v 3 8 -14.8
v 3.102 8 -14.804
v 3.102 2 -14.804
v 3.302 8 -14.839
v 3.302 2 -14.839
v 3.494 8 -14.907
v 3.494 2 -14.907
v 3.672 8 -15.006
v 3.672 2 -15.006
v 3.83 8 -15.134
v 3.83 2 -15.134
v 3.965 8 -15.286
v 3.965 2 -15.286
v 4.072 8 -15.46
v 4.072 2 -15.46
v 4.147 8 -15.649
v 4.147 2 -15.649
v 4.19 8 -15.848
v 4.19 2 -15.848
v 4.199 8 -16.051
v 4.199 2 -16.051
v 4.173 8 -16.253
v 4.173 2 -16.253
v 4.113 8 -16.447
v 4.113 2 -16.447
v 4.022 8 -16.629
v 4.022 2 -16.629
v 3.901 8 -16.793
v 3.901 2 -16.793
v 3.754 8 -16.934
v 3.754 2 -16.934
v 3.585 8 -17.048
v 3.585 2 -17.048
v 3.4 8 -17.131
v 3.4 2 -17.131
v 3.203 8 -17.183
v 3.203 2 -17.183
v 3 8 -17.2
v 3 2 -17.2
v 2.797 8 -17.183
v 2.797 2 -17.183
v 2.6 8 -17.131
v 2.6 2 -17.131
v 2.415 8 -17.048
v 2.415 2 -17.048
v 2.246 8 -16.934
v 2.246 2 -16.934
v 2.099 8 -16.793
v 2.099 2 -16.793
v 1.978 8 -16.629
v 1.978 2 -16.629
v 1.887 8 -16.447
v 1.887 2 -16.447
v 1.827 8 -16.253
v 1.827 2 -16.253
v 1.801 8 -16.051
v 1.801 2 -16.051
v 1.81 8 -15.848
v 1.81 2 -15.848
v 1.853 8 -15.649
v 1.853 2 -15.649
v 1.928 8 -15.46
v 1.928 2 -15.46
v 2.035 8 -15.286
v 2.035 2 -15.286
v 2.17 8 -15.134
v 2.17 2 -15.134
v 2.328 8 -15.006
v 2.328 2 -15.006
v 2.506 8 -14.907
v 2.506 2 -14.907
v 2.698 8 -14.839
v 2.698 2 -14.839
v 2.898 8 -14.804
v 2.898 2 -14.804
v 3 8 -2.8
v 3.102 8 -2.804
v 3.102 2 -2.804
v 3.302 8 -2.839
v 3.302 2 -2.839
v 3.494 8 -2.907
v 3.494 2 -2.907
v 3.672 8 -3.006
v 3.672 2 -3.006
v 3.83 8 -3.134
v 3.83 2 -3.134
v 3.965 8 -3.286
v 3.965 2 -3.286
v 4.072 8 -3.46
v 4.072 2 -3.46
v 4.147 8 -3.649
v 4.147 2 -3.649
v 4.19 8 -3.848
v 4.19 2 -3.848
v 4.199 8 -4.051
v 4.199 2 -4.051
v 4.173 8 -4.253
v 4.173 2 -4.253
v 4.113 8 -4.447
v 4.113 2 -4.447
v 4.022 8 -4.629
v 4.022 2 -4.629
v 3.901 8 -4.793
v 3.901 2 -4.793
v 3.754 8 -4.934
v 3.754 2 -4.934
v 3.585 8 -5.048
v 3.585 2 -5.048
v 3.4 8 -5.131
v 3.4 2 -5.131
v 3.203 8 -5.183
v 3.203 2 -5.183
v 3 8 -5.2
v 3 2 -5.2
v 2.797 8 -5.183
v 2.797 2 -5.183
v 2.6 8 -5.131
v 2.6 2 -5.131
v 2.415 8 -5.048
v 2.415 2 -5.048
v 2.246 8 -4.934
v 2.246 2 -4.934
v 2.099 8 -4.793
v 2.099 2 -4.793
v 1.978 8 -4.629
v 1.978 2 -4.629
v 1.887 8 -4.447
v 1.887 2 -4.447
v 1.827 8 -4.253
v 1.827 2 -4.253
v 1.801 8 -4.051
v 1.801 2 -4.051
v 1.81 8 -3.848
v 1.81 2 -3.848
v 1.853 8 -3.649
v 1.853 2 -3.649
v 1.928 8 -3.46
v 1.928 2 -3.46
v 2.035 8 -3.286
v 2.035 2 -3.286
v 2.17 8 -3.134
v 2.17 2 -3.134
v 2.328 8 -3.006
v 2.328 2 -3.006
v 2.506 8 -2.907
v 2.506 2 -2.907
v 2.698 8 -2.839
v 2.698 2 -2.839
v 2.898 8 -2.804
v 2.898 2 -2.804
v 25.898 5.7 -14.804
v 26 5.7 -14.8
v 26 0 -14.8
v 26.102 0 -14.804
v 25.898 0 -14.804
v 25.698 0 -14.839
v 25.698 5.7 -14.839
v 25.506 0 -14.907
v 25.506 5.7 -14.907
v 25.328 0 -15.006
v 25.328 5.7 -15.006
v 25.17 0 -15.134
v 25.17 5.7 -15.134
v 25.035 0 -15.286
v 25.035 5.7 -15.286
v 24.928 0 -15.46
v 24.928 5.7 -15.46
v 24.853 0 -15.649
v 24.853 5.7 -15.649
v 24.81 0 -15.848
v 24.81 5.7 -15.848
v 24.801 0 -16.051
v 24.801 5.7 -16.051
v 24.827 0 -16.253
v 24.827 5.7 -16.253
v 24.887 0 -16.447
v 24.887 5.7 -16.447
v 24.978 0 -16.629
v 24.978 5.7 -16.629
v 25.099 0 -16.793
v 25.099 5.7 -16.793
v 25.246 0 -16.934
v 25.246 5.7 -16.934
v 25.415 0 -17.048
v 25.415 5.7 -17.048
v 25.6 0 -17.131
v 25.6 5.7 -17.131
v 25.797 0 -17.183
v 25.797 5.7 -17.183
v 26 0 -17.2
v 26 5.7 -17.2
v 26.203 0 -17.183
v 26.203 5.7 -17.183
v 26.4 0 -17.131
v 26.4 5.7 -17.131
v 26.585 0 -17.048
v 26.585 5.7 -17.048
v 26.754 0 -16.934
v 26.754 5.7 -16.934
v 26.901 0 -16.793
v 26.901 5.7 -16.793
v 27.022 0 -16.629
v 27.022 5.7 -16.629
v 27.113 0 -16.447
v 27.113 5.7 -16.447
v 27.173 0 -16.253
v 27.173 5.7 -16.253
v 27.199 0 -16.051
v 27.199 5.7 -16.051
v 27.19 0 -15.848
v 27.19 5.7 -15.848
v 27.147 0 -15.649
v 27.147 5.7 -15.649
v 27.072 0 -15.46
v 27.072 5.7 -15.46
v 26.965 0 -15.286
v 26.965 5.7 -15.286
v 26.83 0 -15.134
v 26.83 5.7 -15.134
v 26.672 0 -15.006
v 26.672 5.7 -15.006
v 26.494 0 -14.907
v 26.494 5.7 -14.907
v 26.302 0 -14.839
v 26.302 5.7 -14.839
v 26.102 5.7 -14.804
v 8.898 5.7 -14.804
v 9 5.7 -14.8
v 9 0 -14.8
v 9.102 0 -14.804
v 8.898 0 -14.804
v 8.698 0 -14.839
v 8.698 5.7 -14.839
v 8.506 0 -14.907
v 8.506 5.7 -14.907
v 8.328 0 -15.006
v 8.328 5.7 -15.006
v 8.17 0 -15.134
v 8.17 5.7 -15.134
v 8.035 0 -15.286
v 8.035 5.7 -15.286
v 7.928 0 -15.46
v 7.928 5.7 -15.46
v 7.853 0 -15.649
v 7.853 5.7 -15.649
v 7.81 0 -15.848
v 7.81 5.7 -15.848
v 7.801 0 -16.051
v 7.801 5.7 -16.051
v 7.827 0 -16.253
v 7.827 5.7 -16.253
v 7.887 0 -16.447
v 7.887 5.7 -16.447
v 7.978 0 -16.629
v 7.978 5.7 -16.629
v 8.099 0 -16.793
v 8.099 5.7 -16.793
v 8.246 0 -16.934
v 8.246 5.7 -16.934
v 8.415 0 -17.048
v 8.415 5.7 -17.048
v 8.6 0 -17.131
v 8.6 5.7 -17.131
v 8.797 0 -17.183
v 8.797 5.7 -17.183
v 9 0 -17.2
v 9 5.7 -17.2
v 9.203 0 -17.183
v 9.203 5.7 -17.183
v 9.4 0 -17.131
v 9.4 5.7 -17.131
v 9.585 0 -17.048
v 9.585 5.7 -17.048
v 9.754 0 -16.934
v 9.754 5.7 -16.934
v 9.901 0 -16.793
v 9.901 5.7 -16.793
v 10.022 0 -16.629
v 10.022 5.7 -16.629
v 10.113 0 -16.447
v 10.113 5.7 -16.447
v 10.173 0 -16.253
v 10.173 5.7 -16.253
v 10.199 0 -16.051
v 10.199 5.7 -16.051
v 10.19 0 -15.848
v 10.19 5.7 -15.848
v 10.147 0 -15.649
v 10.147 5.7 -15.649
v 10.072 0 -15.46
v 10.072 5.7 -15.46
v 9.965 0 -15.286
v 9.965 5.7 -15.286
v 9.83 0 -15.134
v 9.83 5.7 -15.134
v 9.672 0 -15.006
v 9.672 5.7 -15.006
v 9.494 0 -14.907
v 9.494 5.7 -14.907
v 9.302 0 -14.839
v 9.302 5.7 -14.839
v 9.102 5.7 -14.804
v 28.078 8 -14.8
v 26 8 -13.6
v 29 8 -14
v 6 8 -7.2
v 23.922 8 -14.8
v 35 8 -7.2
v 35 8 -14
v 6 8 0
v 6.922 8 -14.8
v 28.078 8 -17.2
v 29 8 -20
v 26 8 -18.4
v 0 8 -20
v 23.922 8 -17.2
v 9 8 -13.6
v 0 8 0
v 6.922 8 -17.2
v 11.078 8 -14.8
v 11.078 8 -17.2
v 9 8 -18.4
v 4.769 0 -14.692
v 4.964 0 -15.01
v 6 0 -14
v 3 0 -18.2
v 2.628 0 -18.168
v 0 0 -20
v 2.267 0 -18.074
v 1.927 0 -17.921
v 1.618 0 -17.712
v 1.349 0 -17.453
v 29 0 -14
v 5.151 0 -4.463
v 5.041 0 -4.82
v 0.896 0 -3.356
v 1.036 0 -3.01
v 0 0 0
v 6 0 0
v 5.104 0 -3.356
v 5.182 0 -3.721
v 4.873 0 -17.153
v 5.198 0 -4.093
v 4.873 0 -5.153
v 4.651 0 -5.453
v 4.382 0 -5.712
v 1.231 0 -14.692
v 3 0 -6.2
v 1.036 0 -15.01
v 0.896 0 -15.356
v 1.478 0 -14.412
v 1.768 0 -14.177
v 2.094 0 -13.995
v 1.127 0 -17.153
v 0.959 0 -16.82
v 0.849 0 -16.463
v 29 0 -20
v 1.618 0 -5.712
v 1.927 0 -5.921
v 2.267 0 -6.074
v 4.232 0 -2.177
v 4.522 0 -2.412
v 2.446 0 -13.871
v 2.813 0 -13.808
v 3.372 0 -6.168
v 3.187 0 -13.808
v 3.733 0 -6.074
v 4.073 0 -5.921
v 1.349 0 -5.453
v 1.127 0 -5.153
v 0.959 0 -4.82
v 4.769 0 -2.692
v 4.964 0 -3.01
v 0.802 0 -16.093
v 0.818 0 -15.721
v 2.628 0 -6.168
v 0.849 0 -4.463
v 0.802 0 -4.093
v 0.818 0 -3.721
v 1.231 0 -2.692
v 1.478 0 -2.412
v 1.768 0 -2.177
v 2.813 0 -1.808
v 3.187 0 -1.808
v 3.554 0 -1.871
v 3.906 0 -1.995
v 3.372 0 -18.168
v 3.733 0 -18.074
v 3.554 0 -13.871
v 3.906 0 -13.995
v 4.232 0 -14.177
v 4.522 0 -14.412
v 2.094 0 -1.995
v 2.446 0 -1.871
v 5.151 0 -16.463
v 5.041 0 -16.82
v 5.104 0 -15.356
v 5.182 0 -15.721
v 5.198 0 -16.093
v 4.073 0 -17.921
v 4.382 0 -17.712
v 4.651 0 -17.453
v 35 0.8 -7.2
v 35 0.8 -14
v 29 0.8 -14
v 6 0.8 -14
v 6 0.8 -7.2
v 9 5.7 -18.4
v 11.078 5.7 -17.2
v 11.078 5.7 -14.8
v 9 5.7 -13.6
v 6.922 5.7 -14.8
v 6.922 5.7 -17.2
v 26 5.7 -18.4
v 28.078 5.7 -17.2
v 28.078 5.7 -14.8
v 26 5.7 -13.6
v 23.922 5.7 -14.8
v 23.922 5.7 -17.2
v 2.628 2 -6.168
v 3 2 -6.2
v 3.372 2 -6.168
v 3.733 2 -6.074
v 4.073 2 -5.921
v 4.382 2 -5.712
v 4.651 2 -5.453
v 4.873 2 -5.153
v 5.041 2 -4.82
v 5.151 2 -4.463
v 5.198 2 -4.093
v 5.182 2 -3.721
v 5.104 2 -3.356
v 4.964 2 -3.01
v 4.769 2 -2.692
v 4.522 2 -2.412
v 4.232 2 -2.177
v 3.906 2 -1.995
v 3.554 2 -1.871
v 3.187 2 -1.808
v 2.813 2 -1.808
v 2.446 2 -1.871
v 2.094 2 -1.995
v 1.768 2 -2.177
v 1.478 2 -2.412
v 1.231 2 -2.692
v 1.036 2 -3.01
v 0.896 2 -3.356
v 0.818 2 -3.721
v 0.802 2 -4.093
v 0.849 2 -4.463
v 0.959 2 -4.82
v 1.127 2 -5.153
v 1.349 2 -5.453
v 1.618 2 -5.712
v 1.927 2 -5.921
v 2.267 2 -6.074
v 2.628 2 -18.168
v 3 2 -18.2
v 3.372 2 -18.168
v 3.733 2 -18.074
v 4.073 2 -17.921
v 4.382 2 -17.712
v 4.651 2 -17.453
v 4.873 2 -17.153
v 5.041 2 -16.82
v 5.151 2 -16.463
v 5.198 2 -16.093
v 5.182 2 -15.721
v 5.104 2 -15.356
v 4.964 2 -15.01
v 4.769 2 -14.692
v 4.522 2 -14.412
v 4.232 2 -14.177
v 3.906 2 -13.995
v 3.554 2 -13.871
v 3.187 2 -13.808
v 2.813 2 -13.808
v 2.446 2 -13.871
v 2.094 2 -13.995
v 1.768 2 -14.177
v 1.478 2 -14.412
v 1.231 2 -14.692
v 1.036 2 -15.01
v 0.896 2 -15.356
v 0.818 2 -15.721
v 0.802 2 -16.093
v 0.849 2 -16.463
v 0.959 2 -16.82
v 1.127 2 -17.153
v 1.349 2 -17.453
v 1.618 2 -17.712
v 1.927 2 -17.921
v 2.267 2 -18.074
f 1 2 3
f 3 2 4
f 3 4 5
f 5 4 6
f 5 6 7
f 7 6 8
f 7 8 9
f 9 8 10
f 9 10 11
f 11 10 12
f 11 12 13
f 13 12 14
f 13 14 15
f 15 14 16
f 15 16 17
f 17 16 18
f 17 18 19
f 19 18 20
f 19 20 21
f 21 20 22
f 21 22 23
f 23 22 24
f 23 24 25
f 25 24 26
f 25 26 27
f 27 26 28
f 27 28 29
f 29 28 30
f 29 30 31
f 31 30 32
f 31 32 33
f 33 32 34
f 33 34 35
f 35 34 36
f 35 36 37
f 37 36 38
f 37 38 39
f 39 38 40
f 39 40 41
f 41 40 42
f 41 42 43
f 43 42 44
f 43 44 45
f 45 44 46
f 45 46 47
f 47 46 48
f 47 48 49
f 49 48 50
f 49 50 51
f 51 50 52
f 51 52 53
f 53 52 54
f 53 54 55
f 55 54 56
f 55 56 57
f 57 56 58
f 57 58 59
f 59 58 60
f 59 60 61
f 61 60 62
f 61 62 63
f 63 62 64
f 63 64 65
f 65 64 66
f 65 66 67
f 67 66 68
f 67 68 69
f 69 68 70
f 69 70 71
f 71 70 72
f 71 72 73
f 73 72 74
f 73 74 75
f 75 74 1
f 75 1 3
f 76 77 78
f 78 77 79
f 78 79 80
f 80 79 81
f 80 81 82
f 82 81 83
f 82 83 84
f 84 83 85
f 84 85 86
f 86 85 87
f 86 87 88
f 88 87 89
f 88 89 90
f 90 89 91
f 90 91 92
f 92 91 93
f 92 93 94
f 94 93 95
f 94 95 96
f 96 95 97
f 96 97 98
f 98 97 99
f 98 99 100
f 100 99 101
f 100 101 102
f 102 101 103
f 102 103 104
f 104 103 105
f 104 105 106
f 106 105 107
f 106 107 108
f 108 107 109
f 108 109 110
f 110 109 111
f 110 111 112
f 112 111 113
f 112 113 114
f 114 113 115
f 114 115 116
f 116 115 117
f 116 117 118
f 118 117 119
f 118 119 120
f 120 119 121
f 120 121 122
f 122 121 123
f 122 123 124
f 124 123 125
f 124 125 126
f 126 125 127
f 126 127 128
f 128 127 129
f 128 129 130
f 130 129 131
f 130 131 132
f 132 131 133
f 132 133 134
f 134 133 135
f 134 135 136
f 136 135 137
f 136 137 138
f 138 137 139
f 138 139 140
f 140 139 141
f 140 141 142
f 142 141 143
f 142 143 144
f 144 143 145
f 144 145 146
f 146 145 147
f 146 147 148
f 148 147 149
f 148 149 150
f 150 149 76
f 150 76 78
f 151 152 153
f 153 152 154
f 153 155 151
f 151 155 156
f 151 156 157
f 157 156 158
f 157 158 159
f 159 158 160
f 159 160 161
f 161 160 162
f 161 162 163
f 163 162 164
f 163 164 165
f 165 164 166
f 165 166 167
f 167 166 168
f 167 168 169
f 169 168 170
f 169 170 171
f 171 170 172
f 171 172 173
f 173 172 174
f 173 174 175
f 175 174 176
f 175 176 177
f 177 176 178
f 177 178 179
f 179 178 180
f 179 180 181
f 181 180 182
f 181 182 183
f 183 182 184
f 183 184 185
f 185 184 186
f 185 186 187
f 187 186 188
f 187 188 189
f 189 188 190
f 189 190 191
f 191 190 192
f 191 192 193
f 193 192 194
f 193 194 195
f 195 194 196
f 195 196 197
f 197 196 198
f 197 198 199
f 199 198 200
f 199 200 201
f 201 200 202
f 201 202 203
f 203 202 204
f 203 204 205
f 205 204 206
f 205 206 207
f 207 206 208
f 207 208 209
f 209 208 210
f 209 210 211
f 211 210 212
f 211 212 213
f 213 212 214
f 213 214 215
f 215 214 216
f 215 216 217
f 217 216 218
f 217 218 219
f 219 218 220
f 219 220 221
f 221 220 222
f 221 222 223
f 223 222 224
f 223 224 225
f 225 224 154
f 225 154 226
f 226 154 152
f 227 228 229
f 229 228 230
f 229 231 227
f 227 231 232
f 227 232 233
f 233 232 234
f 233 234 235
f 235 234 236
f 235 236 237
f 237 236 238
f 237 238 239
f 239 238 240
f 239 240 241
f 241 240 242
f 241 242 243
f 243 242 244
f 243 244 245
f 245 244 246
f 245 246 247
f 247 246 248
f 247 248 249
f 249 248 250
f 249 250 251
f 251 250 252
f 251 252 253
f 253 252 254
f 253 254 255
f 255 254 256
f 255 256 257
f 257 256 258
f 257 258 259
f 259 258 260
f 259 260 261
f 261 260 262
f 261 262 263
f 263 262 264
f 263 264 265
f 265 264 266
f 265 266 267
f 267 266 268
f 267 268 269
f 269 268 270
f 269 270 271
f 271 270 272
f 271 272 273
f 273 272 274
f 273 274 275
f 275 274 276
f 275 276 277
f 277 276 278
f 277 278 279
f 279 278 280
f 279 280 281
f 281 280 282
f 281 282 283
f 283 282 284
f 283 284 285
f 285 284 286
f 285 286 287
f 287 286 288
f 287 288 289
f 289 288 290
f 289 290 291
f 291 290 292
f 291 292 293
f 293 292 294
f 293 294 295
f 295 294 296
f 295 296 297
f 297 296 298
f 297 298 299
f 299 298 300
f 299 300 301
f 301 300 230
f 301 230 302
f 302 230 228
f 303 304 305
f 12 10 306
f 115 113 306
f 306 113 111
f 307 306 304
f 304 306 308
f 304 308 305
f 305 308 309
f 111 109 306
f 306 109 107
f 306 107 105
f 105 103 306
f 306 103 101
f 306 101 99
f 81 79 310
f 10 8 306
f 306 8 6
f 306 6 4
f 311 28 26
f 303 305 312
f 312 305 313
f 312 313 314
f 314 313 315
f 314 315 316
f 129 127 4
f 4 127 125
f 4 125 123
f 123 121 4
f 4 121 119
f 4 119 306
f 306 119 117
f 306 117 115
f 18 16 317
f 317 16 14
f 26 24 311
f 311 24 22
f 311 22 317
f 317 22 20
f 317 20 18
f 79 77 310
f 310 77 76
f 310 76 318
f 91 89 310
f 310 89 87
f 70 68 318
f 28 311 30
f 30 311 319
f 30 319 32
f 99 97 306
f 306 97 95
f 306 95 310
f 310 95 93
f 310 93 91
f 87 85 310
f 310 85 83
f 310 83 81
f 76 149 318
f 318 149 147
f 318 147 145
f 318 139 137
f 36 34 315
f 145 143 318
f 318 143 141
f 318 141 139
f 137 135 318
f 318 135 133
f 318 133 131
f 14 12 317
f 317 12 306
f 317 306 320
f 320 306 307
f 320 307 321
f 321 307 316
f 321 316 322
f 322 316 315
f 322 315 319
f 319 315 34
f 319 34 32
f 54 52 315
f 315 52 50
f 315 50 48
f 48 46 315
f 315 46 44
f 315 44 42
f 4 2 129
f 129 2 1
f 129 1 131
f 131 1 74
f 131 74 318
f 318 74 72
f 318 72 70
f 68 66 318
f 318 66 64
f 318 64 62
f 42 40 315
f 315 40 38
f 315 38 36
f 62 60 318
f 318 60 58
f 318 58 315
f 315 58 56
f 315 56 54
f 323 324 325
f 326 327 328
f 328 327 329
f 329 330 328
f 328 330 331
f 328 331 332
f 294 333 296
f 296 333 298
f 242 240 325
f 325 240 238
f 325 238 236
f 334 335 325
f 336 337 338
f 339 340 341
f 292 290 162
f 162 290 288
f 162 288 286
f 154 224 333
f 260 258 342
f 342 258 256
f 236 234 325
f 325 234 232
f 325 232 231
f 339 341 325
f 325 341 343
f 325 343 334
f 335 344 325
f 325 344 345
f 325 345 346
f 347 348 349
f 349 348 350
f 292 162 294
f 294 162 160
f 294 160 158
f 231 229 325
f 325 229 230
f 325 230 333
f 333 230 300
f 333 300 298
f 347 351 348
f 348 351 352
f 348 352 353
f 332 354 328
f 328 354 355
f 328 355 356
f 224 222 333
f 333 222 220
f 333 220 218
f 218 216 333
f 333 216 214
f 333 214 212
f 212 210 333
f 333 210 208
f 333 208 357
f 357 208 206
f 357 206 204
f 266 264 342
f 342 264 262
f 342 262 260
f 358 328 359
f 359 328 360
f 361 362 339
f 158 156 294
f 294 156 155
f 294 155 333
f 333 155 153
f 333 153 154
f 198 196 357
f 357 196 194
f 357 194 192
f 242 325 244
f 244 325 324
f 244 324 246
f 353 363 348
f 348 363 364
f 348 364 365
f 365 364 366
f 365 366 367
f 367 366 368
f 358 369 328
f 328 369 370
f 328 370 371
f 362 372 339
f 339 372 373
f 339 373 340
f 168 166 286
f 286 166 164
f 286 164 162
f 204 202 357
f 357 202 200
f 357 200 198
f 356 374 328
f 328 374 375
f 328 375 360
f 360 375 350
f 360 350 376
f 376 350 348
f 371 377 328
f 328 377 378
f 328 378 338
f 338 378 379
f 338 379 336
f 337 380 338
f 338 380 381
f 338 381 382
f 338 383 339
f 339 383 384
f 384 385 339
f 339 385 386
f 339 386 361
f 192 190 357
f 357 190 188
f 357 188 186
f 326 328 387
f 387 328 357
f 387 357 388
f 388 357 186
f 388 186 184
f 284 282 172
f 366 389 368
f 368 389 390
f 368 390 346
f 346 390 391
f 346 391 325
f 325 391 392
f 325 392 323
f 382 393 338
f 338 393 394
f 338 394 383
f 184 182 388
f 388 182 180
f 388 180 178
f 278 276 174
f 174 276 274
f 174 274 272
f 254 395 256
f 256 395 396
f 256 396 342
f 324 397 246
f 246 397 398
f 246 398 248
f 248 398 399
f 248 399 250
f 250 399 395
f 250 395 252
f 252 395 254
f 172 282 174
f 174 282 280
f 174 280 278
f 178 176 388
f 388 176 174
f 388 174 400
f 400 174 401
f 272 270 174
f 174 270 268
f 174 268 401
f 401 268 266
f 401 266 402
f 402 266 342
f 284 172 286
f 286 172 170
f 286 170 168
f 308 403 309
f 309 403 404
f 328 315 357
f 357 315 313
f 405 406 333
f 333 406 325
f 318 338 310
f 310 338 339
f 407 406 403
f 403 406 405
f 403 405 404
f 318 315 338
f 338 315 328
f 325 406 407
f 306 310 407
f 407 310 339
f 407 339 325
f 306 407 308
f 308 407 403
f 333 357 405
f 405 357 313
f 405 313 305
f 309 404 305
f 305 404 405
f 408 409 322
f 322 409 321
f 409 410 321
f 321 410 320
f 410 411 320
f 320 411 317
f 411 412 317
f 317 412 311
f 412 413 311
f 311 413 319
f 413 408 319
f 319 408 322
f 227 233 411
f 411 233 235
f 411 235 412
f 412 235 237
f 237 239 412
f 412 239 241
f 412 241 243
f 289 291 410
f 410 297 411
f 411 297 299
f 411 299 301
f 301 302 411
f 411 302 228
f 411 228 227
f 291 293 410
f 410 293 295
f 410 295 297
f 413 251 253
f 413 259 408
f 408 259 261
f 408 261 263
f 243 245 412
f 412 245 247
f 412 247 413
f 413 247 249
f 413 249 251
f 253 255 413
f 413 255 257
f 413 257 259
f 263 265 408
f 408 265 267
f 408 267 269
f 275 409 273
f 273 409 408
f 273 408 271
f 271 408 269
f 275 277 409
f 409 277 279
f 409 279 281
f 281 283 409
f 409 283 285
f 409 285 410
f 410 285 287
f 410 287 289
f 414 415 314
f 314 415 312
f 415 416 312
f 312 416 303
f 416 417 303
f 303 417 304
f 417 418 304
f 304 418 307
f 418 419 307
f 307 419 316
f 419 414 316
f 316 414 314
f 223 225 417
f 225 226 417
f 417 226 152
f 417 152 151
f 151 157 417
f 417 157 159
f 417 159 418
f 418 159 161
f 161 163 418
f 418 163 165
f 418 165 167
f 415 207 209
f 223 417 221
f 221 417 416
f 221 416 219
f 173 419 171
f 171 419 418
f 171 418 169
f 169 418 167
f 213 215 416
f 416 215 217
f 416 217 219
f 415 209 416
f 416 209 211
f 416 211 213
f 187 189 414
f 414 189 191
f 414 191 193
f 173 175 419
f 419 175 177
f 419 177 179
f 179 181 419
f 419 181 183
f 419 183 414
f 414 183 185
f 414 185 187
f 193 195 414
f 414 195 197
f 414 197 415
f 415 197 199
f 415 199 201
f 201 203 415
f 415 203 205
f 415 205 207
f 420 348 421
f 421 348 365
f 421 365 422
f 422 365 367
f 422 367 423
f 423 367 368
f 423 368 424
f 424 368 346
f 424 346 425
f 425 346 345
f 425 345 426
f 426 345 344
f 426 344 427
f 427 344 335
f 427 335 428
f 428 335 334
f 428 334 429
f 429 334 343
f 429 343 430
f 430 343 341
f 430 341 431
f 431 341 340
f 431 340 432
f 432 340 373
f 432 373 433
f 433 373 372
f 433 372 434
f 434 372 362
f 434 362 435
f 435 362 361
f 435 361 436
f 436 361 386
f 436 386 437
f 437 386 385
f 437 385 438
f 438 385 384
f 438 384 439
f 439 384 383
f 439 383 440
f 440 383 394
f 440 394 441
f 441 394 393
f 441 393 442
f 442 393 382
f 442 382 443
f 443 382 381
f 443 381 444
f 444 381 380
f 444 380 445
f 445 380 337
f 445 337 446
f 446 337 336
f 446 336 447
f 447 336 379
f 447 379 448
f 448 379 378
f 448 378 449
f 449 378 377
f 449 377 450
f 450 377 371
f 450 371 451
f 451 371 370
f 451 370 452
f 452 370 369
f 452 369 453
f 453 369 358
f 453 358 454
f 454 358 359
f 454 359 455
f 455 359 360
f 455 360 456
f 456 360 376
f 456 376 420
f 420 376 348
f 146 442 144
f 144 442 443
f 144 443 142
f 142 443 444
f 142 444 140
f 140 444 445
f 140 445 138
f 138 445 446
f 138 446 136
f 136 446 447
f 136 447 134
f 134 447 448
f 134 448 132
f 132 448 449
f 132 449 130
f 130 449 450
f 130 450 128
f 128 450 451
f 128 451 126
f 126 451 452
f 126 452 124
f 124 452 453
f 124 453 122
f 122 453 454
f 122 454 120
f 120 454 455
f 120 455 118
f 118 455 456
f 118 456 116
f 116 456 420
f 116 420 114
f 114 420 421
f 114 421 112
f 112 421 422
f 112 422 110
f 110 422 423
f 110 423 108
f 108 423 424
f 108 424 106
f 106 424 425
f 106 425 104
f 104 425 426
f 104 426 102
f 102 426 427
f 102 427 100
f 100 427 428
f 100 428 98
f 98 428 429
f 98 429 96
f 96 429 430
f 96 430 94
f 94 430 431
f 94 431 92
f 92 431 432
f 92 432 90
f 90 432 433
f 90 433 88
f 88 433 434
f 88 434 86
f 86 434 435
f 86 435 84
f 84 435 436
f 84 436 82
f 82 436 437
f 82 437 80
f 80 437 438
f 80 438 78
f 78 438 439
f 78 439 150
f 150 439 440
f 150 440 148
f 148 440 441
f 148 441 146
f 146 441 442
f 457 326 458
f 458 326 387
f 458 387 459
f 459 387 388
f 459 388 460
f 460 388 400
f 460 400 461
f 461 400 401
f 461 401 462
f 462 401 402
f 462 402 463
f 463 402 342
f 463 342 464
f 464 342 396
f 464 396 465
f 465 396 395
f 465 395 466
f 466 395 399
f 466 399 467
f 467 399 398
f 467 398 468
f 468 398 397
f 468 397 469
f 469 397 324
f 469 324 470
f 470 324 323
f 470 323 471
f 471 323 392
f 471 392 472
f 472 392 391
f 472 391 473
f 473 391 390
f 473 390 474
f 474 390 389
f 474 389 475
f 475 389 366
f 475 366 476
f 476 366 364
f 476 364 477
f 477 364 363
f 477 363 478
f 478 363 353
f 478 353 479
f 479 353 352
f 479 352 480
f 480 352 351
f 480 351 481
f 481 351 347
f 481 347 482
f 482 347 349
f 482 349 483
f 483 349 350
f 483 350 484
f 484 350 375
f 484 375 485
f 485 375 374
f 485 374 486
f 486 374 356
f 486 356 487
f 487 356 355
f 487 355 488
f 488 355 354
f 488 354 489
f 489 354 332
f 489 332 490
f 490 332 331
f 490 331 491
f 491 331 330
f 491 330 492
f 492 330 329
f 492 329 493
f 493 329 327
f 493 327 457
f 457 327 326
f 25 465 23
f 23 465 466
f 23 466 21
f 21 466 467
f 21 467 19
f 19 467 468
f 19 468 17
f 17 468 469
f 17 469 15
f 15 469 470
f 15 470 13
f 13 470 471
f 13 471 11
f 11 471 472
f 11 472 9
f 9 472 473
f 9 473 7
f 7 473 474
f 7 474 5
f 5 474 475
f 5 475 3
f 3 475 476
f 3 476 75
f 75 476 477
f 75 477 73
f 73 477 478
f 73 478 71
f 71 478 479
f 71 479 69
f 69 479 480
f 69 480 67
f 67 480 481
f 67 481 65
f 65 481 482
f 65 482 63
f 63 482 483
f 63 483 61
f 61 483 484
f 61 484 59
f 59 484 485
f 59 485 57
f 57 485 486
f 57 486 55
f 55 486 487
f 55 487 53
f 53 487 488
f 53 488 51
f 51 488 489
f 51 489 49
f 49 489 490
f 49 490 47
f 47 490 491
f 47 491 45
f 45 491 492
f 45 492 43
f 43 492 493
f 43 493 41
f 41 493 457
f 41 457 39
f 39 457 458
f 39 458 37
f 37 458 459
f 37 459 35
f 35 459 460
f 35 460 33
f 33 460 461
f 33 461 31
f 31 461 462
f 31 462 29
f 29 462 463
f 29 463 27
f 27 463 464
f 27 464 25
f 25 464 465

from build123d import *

# Parameters (mm, degrees)
SKETCH_1_W           = 35
SKETCH_1_H           = 20
EXTRUDE_1_DEPTH      = 8
SKETCH_2_W           = 29
SKETCH_2_H           = 14
CUT_EXTRUDE_2_DEPTH  = 0.8
SKETCH_3_W           = 29
SKETCH_3_H           = 7.2
CUT_EXTRUDE_4_DEPTH  = 42.097445176
SKETCH_4_W           = 6
SKETCH_4_H           = 6
CUT_EXTRUDE_5_DEPTH  = 42.097445176
SKETCH_5_R           = 1.2
CUT_EXTRUDE_6_DEPTH  = 42.097445176
CUT_EXTRUDE_START    = 8
CUT_EXTRUDE_8_DEPTH  = 2.3
SKETCH_6_R           = 2.2
CUT_EXTRUDE_10_DEPTH = 2


with BuildPart() as part:
    # 草圖1 → 填料-伸長1 (new body)
    with BuildSketch(Plane(origin=(0, 0, 0), x_dir=(1, 0, 0), z_dir=(0, 1, 0))):
        with Locations((17.5, 10)):
            Rectangle(SKETCH_1_W, SKETCH_1_H)
    extrude(amount=EXTRUDE_1_DEPTH)

    # 草圖2 → 除料-伸長2 (cut)
    with BuildSketch(Plane(origin=(0, 0, 0), x_dir=(1, 0, 0), z_dir=(0, 1, 0))):
        with Locations((20.5, 7)):
            Rectangle(SKETCH_2_W, SKETCH_2_H)
    extrude(amount=CUT_EXTRUDE_2_DEPTH, mode=Mode.SUBTRACT)

    # 草圖3 → 除料-伸長4 (cut, through all)
    with BuildSketch(Plane(origin=(0, 0, 0), x_dir=(1, 0, 0), z_dir=(0, 1, 0))):
        with Locations((20.5, 3.6)):
            Rectangle(SKETCH_3_W, SKETCH_3_H)
    extrude(amount=CUT_EXTRUDE_4_DEPTH, mode=Mode.SUBTRACT)

    # 草圖4 → 除料-伸長5 (cut, through all)
    with BuildSketch(Plane(origin=(0, 0, 0), x_dir=(1, 0, 0), z_dir=(0, 1, 0))):
        with Locations((32, 17)):
            Rectangle(SKETCH_4_W, SKETCH_4_H)
    extrude(amount=CUT_EXTRUDE_5_DEPTH, mode=Mode.SUBTRACT)

    # 草圖5 → 除料-伸長6 (cut, through all)
    with BuildSketch(Plane(origin=(0, 0, 0), x_dir=(1, 0, 0), z_dir=(0, 1, 0))):
        with Locations(Location((3, 16, 0), (0, 0, 270))):
            Circle(SKETCH_5_R)
        with Locations(Location((3, 4, 0), (0, 0, 270))):
            Circle(SKETCH_5_R)
        with Locations(Location((9, 16, 0), (0, 0, 270))):
            Circle(SKETCH_5_R)
        with Locations(Location((26, 16, 0), (0, 0, 270))):
            Circle(SKETCH_5_R)
    extrude(amount=CUT_EXTRUDE_6_DEPTH, mode=Mode.SUBTRACT)

    # 草圖7 → 除料-伸長8 (cut)
    with BuildSketch(Plane(origin=(0, 0, 0), x_dir=(1, 0, 0), z_dir=(0, 1, 0)).offset(CUT_EXTRUDE_START)):
        Polygon((26, 18.4), (23.921539031, 17.2), (23.921539031, 14.8), (26, 13.6), (28.078460969, 14.8), (28.078460969, 17.2), align=None)
        Polygon((9, 18.4), (6.921539031, 17.2), (6.921539031, 14.8), (9, 13.6), (11.078460969, 14.8), (11.078460969, 17.2), align=None)
    extrude(amount=-CUT_EXTRUDE_8_DEPTH, mode=Mode.SUBTRACT)

    # 草圖6 → 除料-伸長10 (cut)
    with BuildSketch(Plane(origin=(0, 0, 0), x_dir=(1, 0, 0), z_dir=(0, 1, 0))):
        with Locations(Location((3, 16, 0), (0, 0, 90))):
            Circle(SKETCH_6_R)
        with Locations(Location((3, 4, 0), (0, 0, 90))):
            Circle(SKETCH_6_R)
    extrude(amount=CUT_EXTRUDE_10_DEPTH, mode=Mode.SUBTRACT)


solid = part.part
